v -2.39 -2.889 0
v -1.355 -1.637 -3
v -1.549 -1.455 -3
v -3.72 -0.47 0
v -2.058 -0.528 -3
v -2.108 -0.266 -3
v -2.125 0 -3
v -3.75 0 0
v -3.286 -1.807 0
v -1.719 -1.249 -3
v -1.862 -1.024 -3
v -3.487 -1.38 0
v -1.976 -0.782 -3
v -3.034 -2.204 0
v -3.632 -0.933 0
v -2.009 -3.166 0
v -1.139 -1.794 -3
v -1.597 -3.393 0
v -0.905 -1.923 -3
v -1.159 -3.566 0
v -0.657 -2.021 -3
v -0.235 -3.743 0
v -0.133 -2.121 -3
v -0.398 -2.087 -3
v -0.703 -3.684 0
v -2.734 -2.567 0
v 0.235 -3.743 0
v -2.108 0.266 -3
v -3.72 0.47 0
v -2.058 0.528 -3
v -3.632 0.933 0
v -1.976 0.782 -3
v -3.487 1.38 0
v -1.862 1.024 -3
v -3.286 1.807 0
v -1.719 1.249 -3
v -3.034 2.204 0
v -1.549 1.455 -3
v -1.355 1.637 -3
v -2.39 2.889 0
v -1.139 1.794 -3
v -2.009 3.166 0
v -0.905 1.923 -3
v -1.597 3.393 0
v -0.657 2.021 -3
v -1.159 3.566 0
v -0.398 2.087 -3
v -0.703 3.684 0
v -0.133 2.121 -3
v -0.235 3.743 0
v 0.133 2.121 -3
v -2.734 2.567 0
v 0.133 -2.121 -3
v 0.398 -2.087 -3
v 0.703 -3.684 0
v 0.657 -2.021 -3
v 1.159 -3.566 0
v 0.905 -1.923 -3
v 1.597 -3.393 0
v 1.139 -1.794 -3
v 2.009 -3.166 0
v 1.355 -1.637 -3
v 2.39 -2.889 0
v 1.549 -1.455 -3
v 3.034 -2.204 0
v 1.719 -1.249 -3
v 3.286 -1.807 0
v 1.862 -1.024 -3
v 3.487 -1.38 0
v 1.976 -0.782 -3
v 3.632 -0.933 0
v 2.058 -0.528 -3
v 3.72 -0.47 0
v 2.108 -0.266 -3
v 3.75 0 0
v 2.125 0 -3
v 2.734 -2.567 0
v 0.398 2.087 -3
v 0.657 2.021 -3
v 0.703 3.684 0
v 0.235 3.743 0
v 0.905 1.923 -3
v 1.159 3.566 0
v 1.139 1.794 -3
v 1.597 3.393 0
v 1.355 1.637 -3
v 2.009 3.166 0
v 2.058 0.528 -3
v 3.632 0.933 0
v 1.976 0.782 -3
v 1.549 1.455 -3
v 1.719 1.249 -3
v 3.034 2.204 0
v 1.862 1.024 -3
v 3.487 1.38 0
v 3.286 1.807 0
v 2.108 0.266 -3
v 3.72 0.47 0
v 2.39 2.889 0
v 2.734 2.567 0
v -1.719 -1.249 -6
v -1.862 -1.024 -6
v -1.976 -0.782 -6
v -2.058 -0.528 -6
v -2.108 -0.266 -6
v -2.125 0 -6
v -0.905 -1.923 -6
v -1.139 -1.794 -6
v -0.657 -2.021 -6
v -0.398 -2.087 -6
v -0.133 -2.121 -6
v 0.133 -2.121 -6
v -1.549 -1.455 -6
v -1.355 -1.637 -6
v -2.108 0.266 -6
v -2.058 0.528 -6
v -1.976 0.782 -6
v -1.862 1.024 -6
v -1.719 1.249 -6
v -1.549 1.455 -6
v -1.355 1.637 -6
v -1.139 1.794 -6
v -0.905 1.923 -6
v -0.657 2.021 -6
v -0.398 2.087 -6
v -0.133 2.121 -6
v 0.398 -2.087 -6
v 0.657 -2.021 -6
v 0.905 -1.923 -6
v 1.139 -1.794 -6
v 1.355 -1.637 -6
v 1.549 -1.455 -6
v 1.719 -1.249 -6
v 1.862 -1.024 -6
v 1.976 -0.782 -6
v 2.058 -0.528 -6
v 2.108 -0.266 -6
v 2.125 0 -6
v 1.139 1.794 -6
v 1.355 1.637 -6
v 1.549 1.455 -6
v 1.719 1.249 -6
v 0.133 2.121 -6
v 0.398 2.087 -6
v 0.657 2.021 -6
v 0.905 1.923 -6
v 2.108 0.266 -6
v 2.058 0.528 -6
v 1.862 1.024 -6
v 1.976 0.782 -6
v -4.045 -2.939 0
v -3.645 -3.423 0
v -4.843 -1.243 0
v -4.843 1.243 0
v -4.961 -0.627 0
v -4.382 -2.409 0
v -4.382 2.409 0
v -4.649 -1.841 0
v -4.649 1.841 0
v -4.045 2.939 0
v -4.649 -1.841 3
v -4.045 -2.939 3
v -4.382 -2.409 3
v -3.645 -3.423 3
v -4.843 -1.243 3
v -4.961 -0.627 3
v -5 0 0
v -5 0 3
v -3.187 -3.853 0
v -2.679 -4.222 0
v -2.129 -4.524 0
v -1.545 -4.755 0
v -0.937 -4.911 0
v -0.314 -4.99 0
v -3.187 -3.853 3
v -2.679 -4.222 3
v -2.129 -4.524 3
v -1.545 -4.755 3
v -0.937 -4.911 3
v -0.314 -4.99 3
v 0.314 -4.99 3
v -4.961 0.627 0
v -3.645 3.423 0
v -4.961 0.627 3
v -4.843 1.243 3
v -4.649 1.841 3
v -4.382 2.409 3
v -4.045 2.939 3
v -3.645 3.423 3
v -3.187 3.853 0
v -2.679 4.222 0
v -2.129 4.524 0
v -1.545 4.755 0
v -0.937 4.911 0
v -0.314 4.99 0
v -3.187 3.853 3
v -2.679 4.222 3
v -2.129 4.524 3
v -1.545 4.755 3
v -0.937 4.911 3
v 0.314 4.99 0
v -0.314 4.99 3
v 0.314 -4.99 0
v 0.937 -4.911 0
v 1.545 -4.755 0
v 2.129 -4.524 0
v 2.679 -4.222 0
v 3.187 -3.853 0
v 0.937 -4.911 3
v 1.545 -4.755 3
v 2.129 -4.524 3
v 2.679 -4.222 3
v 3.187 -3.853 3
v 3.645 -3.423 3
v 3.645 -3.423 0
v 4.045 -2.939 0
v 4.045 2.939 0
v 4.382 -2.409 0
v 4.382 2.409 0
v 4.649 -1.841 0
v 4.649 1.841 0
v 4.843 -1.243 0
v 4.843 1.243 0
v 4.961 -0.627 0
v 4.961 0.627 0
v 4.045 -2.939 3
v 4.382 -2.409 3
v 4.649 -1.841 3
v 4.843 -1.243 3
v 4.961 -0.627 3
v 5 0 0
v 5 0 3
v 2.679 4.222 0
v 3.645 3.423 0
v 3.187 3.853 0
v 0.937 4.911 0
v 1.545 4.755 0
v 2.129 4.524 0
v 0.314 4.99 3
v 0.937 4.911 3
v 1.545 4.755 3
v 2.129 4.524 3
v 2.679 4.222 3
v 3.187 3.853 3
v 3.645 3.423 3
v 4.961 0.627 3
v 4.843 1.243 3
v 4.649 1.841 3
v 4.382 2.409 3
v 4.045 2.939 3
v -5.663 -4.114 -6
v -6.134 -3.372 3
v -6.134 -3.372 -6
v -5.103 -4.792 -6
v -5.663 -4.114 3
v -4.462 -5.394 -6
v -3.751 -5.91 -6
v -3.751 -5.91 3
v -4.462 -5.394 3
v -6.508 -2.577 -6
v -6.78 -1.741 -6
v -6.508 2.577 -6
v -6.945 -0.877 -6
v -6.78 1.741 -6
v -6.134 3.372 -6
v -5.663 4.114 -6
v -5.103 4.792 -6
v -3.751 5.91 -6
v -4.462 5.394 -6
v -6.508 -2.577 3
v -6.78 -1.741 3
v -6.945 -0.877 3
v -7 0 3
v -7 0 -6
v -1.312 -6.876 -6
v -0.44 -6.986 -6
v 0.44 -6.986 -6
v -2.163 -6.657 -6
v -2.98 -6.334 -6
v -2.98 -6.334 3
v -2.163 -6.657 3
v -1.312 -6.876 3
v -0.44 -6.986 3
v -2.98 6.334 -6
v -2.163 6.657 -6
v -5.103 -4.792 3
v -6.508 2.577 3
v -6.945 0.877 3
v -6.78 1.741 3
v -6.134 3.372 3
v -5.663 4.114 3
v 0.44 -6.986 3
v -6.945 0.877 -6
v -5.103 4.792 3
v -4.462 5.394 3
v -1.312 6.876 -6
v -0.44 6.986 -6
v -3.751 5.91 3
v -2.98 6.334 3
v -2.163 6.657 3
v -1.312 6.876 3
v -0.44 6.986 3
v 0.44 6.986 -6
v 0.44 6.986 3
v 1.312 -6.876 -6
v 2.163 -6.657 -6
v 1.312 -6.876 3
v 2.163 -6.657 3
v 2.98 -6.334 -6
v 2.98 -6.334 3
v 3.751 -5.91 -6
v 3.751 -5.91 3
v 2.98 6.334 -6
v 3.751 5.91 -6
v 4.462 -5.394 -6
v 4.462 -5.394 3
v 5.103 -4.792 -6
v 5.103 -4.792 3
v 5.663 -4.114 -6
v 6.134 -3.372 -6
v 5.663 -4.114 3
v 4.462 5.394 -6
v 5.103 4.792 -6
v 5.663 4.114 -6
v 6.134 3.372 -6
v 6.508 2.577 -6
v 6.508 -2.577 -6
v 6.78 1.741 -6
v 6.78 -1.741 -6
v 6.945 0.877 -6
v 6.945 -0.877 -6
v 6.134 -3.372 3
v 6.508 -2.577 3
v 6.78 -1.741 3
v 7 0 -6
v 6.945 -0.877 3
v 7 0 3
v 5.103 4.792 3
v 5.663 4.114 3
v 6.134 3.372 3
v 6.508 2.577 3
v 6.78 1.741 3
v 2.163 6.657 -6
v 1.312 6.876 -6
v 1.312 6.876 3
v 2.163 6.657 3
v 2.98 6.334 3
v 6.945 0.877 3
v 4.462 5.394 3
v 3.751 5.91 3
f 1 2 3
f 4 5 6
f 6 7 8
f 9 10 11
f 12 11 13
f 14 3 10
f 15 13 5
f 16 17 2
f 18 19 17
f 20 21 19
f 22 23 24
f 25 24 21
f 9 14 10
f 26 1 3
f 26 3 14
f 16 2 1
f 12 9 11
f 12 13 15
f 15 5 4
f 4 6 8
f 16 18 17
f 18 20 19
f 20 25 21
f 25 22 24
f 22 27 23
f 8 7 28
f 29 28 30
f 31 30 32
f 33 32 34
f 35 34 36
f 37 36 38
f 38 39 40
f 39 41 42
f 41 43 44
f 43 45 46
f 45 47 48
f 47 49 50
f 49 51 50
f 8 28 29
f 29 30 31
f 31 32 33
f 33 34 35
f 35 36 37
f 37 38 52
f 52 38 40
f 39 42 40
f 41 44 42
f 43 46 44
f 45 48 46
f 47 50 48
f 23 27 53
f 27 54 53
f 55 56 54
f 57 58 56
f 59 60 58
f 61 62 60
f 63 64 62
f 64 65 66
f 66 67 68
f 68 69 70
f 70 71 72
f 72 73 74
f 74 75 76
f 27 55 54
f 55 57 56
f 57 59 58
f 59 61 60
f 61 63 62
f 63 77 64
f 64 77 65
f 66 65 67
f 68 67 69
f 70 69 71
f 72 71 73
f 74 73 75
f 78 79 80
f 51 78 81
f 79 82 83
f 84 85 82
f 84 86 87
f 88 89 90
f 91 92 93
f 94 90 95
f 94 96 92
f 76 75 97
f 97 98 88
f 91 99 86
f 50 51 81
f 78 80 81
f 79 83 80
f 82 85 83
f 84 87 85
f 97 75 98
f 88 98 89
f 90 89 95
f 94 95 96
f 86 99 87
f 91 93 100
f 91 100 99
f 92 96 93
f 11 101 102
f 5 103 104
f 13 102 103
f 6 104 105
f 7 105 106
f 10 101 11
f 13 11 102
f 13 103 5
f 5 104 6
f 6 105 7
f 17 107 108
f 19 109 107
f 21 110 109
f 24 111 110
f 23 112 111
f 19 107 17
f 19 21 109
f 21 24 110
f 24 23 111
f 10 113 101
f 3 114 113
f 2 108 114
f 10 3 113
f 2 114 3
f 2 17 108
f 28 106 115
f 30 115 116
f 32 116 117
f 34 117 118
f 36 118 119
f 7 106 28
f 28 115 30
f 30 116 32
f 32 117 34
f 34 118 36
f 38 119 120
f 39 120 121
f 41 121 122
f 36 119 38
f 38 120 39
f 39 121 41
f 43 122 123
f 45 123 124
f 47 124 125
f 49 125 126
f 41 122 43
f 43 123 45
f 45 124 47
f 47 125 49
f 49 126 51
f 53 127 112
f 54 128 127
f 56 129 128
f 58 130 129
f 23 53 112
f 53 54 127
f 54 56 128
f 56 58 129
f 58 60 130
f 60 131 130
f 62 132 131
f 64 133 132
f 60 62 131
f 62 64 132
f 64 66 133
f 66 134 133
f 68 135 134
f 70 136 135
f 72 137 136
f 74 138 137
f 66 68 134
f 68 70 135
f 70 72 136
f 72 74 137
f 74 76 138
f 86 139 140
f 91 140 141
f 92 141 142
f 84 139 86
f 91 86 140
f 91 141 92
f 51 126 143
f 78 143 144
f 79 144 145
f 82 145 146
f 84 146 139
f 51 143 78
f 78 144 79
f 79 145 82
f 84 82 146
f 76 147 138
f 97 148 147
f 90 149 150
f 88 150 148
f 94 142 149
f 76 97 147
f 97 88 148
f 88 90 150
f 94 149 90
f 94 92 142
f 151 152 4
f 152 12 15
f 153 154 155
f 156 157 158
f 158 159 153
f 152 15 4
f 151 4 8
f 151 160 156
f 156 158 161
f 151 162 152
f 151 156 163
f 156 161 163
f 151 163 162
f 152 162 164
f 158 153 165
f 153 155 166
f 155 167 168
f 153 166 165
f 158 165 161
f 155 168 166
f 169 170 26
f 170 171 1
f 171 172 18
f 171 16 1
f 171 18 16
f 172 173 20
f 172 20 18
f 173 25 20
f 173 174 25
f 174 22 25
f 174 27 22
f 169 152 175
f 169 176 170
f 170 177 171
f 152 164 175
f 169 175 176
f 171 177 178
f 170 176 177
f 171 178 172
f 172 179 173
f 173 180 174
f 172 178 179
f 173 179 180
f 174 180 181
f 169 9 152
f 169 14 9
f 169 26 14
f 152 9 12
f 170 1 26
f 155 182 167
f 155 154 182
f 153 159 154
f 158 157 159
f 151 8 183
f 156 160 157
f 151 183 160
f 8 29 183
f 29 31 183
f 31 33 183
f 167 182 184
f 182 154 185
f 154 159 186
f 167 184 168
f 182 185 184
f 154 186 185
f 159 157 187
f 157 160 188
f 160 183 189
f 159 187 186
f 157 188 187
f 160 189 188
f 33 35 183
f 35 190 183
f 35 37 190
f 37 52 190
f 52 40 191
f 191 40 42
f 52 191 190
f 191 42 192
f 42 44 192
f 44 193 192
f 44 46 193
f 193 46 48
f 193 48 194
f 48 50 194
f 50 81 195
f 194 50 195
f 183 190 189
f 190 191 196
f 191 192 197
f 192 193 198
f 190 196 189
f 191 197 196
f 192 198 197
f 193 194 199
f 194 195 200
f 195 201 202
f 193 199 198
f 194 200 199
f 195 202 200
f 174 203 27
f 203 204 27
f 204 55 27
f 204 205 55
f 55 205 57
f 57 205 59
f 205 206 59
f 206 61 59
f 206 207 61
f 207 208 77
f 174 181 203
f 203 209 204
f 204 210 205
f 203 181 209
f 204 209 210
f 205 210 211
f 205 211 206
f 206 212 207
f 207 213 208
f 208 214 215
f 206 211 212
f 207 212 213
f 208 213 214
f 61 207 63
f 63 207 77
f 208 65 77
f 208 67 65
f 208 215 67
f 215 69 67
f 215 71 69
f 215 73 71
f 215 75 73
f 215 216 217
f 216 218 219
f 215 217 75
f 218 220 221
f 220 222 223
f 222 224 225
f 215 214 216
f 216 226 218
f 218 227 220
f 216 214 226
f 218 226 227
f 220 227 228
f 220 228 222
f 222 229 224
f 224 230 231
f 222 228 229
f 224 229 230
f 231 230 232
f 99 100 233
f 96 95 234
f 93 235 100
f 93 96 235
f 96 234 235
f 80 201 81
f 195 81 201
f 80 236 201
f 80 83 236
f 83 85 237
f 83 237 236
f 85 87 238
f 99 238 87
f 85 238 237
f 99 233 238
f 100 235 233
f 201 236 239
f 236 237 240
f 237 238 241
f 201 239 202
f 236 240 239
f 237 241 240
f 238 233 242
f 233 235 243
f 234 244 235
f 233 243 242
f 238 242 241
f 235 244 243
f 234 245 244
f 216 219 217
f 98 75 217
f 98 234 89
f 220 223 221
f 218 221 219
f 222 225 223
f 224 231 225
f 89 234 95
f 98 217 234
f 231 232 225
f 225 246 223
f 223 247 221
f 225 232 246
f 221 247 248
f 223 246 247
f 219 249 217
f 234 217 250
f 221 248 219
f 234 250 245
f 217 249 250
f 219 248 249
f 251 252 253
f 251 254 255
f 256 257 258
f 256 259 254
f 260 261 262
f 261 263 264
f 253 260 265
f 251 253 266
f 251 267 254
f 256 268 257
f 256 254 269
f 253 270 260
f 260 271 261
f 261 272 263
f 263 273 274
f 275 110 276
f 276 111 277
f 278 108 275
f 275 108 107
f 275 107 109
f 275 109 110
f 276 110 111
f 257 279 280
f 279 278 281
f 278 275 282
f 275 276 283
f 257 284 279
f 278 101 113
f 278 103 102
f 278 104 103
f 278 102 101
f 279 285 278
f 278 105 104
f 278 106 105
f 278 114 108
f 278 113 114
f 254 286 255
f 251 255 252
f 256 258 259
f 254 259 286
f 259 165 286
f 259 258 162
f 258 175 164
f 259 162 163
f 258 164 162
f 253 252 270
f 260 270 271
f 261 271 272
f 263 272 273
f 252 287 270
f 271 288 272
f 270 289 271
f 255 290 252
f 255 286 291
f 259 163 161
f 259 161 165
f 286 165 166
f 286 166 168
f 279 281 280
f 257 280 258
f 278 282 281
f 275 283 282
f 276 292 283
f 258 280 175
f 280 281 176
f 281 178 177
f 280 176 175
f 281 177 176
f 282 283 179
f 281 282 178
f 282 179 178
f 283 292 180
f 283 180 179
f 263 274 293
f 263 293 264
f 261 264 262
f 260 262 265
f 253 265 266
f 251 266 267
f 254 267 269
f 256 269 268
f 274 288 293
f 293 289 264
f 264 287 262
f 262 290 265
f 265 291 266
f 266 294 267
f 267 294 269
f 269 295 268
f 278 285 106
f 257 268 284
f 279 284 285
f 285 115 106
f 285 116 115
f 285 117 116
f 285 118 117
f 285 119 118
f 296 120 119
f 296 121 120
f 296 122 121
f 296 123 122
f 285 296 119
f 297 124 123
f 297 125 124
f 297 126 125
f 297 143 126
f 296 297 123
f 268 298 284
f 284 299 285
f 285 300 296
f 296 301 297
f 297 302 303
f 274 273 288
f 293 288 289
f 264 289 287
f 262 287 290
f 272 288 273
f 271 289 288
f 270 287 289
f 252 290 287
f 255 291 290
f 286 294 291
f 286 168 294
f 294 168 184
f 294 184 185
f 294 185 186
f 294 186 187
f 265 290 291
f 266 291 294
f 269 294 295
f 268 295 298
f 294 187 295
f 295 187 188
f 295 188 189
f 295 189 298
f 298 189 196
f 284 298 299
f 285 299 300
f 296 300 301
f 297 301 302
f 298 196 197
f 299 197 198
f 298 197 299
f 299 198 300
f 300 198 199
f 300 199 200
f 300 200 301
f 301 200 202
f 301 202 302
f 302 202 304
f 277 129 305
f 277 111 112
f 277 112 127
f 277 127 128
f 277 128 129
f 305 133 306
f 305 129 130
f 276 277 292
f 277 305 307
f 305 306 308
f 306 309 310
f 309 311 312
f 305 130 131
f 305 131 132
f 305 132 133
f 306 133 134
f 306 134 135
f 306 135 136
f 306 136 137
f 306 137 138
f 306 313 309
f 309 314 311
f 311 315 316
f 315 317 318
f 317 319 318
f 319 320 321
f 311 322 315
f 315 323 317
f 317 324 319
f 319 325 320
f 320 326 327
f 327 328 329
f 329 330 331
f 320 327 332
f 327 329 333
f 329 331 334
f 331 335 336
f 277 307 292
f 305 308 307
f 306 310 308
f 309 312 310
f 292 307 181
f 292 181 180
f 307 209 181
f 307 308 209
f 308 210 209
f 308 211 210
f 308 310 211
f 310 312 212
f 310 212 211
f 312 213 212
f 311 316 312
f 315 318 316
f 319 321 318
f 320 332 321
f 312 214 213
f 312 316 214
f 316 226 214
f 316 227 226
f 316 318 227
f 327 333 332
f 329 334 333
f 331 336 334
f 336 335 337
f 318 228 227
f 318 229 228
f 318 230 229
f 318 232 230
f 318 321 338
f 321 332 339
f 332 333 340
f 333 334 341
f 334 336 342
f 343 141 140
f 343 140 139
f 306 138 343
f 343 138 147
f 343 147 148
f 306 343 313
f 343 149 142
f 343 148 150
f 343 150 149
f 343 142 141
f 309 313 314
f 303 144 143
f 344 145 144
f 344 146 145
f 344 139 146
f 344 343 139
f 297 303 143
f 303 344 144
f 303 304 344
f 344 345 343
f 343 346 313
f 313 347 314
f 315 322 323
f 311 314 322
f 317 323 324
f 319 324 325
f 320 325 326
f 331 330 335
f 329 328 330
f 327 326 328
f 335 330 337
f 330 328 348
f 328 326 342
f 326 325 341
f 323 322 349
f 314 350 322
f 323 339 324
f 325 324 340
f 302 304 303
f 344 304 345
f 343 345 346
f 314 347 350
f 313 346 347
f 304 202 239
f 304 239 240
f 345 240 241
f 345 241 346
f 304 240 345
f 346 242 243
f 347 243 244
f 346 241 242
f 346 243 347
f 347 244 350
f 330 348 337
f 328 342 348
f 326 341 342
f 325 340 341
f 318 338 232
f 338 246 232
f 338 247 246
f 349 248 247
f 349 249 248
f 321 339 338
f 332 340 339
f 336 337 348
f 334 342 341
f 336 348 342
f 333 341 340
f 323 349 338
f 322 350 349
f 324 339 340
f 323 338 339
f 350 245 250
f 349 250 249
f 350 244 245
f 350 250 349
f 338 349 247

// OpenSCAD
$fn = 50;

difference() {
	union() {
		translate(v = [0, 0, -6.0]) {
			cylinder(h = 9, r = 7.0);
		}
	}
	union() {
		translate(v = [0, 0, 0]) {
			rotate(a = [0, 0, 0]) {
				difference() {
					union() {
						translate(v = [0, 0, -9.0]) {
							cylinder(h = 9, r = 2.0);
						}
						translate(v = [0, 0, -3]) {
							cylinder(h = 3, r1 = 2.125, r2 = 3.75);
						}
						translate(v = [0, 0, -9.0]) {
							cylinder(h = 9, r = 2.125);
						}
						translate(v = [0, 0, -9.0]) {
							cylinder(h = 9, r = 2.0);
						}
					}
					union();
				}
			}
		}
		#cylinder(h = 3, r = 5.0);
	}
}
